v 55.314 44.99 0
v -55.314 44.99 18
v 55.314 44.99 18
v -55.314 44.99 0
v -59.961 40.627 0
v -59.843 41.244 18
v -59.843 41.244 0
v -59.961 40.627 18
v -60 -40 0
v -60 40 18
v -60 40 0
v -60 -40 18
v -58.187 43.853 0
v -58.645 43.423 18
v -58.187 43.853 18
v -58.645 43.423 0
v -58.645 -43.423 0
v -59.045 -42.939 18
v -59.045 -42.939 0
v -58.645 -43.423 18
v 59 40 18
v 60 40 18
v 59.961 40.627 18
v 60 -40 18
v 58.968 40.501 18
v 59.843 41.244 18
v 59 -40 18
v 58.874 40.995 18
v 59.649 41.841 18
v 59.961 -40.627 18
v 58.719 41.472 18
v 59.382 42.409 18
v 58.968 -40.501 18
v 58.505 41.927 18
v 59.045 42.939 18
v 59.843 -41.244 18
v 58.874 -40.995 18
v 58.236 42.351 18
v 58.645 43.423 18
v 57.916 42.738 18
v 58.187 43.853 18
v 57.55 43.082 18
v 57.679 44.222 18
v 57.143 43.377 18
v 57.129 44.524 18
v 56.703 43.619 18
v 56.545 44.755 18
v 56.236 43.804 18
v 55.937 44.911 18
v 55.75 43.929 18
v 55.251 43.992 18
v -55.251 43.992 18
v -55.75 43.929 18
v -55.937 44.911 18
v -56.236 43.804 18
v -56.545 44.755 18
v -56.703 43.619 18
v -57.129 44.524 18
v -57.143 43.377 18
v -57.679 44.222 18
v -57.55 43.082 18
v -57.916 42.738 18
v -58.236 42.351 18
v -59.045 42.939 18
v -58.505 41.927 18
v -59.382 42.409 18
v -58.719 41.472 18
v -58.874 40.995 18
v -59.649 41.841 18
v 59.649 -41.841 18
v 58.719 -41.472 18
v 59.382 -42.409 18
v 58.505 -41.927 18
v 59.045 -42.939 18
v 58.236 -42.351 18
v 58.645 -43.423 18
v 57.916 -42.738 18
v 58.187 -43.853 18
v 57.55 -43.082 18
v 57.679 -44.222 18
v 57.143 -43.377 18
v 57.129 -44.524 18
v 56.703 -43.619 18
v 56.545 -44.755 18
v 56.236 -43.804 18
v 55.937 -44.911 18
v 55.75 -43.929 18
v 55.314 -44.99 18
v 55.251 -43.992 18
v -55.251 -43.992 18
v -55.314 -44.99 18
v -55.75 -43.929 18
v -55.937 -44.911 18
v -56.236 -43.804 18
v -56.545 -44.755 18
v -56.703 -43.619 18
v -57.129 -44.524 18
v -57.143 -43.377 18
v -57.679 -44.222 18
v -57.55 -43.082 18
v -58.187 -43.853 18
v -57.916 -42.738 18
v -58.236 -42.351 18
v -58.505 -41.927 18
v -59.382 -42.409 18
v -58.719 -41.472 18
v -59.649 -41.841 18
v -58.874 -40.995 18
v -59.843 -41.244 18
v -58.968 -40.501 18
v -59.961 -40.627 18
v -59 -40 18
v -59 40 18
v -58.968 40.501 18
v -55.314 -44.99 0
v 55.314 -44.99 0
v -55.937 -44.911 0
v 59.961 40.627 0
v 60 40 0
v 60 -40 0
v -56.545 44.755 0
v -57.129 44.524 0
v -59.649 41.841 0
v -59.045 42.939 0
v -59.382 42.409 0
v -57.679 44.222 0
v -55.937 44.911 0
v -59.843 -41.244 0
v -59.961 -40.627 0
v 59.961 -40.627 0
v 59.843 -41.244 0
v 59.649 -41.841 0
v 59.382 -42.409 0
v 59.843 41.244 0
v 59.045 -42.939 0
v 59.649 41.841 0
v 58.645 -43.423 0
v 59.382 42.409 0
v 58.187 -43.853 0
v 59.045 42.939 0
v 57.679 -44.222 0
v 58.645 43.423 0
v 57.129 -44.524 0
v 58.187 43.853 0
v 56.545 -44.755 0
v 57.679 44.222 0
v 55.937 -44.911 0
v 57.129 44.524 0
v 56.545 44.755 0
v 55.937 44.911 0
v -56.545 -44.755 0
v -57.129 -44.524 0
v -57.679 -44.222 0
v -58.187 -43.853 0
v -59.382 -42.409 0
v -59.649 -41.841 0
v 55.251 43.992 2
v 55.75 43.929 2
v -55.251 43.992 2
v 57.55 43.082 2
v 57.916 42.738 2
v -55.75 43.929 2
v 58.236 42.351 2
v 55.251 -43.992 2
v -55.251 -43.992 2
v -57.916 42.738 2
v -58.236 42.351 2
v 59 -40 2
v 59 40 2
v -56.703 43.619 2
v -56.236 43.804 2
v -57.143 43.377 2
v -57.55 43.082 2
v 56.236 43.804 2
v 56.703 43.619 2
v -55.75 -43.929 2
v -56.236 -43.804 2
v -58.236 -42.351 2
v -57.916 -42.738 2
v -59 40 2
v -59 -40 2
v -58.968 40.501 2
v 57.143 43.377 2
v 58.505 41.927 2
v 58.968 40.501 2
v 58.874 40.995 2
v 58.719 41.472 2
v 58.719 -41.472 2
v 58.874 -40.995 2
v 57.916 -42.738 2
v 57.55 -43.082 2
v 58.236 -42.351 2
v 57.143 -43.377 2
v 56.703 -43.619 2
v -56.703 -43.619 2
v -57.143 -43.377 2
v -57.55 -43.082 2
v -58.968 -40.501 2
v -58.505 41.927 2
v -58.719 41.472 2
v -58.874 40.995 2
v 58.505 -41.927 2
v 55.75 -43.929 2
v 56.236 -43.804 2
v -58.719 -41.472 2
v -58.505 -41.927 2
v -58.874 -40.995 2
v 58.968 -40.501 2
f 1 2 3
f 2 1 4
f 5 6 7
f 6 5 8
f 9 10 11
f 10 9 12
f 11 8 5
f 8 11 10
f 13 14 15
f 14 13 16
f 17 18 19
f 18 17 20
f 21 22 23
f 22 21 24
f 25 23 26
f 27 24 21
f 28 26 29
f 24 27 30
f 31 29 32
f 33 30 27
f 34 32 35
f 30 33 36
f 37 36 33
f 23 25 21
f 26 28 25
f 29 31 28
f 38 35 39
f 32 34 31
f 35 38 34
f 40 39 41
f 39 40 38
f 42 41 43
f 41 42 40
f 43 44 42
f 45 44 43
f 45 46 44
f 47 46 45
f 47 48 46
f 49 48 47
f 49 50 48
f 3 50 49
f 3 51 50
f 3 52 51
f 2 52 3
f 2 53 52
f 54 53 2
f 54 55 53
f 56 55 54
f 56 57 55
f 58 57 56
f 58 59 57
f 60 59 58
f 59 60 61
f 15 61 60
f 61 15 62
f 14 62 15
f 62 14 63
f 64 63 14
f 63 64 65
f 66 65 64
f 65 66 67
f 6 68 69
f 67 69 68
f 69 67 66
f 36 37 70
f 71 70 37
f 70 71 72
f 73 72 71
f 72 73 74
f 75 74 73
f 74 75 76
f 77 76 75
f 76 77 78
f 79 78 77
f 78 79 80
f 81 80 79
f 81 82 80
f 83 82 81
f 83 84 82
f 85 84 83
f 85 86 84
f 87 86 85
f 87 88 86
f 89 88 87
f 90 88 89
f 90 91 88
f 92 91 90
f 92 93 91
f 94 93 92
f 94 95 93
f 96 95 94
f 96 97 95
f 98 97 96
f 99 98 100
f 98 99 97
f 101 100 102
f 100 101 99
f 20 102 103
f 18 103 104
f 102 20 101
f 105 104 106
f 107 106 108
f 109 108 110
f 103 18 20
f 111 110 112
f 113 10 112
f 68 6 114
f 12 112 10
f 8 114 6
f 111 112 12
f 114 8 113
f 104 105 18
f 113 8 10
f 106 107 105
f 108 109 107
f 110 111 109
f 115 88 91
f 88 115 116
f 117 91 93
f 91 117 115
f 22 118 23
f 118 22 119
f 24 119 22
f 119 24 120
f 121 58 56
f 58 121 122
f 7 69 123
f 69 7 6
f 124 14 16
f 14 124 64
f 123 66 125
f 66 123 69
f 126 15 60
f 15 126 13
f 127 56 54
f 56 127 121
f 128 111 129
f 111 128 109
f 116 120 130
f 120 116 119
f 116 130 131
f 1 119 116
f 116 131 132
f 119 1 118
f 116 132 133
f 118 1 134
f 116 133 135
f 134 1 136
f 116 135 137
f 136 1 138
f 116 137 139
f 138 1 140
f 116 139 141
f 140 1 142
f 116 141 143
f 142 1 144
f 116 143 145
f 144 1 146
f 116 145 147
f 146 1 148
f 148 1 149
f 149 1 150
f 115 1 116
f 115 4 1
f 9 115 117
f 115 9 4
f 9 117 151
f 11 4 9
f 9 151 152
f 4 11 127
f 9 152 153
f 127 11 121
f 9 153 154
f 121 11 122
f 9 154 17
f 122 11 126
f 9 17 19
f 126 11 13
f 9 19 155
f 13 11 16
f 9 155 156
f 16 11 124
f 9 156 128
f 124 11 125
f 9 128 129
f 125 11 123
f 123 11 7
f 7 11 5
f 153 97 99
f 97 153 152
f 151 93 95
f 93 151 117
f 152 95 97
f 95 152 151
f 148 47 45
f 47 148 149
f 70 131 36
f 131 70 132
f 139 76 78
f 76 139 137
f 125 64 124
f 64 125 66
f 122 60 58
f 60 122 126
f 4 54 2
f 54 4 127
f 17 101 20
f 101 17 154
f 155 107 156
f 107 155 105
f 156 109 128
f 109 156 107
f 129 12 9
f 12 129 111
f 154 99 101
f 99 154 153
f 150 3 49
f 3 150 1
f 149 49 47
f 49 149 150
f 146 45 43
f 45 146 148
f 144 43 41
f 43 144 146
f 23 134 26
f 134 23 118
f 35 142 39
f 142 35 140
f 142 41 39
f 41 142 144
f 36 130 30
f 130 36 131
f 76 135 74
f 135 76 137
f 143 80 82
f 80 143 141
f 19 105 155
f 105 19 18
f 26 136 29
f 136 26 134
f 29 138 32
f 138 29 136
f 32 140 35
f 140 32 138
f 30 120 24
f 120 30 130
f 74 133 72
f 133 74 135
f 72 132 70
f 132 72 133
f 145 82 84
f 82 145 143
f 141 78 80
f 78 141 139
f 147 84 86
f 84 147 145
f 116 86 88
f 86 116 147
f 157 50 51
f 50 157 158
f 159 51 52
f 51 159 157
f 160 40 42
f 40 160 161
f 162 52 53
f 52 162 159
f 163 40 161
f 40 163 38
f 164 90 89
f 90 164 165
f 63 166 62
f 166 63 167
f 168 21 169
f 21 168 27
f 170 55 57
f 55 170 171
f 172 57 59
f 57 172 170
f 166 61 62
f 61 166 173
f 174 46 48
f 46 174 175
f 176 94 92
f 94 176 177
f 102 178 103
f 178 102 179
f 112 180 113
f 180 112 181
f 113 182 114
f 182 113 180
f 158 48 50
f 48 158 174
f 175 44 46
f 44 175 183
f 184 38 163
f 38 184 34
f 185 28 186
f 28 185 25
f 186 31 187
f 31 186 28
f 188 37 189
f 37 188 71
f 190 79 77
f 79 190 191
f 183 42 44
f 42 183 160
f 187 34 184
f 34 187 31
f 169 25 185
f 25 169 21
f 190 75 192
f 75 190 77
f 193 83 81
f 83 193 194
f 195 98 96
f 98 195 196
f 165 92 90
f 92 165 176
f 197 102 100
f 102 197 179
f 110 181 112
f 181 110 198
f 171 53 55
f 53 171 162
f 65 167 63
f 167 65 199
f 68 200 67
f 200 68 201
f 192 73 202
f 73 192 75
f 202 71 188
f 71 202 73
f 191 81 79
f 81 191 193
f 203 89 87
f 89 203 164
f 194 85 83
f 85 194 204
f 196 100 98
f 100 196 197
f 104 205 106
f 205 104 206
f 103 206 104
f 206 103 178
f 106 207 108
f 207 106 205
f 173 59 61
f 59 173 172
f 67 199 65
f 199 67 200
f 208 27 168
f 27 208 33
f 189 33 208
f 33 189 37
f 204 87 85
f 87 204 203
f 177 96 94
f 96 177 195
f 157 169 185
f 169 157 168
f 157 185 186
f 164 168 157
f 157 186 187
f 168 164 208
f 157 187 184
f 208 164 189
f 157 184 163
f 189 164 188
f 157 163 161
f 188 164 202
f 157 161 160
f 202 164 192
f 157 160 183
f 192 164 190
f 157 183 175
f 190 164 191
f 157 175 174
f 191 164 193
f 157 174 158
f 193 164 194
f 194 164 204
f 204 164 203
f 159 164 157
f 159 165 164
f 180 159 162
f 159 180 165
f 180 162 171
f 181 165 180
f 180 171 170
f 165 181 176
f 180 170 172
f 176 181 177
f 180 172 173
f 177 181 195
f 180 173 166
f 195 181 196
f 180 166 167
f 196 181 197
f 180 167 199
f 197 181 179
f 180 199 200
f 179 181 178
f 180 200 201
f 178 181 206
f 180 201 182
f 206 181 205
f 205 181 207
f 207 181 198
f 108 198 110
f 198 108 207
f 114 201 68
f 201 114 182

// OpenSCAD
$fn = 50;


difference() {
	union() {
		hull() {
			translate(v = [-55.0000000000, 40.0000000000, 0]) {
				cylinder(h = 18, r = 5);
			}
			translate(v = [55.0000000000, 40.0000000000, 0]) {
				cylinder(h = 18, r = 5);
			}
			translate(v = [-55.0000000000, -40.0000000000, 0]) {
				cylinder(h = 18, r = 5);
			}
			translate(v = [55.0000000000, -40.0000000000, 0]) {
				cylinder(h = 18, r = 5);
			}
		}
	}
	union() {
		translate(v = [0, 0, 2]) {
			hull() {
				translate(v = [-55.0000000000, 40.0000000000, 0]) {
					cylinder(h = 16, r = 4);
				}
				translate(v = [55.0000000000, 40.0000000000, 0]) {
					cylinder(h = 16, r = 4);
				}
				translate(v = [-55.0000000000, -40.0000000000, 0]) {
					cylinder(h = 16, r = 4);
				}
				translate(v = [55.0000000000, -40.0000000000, 0]) {
					cylinder(h = 16, r = 4);
				}
			}
		}
	}
}
